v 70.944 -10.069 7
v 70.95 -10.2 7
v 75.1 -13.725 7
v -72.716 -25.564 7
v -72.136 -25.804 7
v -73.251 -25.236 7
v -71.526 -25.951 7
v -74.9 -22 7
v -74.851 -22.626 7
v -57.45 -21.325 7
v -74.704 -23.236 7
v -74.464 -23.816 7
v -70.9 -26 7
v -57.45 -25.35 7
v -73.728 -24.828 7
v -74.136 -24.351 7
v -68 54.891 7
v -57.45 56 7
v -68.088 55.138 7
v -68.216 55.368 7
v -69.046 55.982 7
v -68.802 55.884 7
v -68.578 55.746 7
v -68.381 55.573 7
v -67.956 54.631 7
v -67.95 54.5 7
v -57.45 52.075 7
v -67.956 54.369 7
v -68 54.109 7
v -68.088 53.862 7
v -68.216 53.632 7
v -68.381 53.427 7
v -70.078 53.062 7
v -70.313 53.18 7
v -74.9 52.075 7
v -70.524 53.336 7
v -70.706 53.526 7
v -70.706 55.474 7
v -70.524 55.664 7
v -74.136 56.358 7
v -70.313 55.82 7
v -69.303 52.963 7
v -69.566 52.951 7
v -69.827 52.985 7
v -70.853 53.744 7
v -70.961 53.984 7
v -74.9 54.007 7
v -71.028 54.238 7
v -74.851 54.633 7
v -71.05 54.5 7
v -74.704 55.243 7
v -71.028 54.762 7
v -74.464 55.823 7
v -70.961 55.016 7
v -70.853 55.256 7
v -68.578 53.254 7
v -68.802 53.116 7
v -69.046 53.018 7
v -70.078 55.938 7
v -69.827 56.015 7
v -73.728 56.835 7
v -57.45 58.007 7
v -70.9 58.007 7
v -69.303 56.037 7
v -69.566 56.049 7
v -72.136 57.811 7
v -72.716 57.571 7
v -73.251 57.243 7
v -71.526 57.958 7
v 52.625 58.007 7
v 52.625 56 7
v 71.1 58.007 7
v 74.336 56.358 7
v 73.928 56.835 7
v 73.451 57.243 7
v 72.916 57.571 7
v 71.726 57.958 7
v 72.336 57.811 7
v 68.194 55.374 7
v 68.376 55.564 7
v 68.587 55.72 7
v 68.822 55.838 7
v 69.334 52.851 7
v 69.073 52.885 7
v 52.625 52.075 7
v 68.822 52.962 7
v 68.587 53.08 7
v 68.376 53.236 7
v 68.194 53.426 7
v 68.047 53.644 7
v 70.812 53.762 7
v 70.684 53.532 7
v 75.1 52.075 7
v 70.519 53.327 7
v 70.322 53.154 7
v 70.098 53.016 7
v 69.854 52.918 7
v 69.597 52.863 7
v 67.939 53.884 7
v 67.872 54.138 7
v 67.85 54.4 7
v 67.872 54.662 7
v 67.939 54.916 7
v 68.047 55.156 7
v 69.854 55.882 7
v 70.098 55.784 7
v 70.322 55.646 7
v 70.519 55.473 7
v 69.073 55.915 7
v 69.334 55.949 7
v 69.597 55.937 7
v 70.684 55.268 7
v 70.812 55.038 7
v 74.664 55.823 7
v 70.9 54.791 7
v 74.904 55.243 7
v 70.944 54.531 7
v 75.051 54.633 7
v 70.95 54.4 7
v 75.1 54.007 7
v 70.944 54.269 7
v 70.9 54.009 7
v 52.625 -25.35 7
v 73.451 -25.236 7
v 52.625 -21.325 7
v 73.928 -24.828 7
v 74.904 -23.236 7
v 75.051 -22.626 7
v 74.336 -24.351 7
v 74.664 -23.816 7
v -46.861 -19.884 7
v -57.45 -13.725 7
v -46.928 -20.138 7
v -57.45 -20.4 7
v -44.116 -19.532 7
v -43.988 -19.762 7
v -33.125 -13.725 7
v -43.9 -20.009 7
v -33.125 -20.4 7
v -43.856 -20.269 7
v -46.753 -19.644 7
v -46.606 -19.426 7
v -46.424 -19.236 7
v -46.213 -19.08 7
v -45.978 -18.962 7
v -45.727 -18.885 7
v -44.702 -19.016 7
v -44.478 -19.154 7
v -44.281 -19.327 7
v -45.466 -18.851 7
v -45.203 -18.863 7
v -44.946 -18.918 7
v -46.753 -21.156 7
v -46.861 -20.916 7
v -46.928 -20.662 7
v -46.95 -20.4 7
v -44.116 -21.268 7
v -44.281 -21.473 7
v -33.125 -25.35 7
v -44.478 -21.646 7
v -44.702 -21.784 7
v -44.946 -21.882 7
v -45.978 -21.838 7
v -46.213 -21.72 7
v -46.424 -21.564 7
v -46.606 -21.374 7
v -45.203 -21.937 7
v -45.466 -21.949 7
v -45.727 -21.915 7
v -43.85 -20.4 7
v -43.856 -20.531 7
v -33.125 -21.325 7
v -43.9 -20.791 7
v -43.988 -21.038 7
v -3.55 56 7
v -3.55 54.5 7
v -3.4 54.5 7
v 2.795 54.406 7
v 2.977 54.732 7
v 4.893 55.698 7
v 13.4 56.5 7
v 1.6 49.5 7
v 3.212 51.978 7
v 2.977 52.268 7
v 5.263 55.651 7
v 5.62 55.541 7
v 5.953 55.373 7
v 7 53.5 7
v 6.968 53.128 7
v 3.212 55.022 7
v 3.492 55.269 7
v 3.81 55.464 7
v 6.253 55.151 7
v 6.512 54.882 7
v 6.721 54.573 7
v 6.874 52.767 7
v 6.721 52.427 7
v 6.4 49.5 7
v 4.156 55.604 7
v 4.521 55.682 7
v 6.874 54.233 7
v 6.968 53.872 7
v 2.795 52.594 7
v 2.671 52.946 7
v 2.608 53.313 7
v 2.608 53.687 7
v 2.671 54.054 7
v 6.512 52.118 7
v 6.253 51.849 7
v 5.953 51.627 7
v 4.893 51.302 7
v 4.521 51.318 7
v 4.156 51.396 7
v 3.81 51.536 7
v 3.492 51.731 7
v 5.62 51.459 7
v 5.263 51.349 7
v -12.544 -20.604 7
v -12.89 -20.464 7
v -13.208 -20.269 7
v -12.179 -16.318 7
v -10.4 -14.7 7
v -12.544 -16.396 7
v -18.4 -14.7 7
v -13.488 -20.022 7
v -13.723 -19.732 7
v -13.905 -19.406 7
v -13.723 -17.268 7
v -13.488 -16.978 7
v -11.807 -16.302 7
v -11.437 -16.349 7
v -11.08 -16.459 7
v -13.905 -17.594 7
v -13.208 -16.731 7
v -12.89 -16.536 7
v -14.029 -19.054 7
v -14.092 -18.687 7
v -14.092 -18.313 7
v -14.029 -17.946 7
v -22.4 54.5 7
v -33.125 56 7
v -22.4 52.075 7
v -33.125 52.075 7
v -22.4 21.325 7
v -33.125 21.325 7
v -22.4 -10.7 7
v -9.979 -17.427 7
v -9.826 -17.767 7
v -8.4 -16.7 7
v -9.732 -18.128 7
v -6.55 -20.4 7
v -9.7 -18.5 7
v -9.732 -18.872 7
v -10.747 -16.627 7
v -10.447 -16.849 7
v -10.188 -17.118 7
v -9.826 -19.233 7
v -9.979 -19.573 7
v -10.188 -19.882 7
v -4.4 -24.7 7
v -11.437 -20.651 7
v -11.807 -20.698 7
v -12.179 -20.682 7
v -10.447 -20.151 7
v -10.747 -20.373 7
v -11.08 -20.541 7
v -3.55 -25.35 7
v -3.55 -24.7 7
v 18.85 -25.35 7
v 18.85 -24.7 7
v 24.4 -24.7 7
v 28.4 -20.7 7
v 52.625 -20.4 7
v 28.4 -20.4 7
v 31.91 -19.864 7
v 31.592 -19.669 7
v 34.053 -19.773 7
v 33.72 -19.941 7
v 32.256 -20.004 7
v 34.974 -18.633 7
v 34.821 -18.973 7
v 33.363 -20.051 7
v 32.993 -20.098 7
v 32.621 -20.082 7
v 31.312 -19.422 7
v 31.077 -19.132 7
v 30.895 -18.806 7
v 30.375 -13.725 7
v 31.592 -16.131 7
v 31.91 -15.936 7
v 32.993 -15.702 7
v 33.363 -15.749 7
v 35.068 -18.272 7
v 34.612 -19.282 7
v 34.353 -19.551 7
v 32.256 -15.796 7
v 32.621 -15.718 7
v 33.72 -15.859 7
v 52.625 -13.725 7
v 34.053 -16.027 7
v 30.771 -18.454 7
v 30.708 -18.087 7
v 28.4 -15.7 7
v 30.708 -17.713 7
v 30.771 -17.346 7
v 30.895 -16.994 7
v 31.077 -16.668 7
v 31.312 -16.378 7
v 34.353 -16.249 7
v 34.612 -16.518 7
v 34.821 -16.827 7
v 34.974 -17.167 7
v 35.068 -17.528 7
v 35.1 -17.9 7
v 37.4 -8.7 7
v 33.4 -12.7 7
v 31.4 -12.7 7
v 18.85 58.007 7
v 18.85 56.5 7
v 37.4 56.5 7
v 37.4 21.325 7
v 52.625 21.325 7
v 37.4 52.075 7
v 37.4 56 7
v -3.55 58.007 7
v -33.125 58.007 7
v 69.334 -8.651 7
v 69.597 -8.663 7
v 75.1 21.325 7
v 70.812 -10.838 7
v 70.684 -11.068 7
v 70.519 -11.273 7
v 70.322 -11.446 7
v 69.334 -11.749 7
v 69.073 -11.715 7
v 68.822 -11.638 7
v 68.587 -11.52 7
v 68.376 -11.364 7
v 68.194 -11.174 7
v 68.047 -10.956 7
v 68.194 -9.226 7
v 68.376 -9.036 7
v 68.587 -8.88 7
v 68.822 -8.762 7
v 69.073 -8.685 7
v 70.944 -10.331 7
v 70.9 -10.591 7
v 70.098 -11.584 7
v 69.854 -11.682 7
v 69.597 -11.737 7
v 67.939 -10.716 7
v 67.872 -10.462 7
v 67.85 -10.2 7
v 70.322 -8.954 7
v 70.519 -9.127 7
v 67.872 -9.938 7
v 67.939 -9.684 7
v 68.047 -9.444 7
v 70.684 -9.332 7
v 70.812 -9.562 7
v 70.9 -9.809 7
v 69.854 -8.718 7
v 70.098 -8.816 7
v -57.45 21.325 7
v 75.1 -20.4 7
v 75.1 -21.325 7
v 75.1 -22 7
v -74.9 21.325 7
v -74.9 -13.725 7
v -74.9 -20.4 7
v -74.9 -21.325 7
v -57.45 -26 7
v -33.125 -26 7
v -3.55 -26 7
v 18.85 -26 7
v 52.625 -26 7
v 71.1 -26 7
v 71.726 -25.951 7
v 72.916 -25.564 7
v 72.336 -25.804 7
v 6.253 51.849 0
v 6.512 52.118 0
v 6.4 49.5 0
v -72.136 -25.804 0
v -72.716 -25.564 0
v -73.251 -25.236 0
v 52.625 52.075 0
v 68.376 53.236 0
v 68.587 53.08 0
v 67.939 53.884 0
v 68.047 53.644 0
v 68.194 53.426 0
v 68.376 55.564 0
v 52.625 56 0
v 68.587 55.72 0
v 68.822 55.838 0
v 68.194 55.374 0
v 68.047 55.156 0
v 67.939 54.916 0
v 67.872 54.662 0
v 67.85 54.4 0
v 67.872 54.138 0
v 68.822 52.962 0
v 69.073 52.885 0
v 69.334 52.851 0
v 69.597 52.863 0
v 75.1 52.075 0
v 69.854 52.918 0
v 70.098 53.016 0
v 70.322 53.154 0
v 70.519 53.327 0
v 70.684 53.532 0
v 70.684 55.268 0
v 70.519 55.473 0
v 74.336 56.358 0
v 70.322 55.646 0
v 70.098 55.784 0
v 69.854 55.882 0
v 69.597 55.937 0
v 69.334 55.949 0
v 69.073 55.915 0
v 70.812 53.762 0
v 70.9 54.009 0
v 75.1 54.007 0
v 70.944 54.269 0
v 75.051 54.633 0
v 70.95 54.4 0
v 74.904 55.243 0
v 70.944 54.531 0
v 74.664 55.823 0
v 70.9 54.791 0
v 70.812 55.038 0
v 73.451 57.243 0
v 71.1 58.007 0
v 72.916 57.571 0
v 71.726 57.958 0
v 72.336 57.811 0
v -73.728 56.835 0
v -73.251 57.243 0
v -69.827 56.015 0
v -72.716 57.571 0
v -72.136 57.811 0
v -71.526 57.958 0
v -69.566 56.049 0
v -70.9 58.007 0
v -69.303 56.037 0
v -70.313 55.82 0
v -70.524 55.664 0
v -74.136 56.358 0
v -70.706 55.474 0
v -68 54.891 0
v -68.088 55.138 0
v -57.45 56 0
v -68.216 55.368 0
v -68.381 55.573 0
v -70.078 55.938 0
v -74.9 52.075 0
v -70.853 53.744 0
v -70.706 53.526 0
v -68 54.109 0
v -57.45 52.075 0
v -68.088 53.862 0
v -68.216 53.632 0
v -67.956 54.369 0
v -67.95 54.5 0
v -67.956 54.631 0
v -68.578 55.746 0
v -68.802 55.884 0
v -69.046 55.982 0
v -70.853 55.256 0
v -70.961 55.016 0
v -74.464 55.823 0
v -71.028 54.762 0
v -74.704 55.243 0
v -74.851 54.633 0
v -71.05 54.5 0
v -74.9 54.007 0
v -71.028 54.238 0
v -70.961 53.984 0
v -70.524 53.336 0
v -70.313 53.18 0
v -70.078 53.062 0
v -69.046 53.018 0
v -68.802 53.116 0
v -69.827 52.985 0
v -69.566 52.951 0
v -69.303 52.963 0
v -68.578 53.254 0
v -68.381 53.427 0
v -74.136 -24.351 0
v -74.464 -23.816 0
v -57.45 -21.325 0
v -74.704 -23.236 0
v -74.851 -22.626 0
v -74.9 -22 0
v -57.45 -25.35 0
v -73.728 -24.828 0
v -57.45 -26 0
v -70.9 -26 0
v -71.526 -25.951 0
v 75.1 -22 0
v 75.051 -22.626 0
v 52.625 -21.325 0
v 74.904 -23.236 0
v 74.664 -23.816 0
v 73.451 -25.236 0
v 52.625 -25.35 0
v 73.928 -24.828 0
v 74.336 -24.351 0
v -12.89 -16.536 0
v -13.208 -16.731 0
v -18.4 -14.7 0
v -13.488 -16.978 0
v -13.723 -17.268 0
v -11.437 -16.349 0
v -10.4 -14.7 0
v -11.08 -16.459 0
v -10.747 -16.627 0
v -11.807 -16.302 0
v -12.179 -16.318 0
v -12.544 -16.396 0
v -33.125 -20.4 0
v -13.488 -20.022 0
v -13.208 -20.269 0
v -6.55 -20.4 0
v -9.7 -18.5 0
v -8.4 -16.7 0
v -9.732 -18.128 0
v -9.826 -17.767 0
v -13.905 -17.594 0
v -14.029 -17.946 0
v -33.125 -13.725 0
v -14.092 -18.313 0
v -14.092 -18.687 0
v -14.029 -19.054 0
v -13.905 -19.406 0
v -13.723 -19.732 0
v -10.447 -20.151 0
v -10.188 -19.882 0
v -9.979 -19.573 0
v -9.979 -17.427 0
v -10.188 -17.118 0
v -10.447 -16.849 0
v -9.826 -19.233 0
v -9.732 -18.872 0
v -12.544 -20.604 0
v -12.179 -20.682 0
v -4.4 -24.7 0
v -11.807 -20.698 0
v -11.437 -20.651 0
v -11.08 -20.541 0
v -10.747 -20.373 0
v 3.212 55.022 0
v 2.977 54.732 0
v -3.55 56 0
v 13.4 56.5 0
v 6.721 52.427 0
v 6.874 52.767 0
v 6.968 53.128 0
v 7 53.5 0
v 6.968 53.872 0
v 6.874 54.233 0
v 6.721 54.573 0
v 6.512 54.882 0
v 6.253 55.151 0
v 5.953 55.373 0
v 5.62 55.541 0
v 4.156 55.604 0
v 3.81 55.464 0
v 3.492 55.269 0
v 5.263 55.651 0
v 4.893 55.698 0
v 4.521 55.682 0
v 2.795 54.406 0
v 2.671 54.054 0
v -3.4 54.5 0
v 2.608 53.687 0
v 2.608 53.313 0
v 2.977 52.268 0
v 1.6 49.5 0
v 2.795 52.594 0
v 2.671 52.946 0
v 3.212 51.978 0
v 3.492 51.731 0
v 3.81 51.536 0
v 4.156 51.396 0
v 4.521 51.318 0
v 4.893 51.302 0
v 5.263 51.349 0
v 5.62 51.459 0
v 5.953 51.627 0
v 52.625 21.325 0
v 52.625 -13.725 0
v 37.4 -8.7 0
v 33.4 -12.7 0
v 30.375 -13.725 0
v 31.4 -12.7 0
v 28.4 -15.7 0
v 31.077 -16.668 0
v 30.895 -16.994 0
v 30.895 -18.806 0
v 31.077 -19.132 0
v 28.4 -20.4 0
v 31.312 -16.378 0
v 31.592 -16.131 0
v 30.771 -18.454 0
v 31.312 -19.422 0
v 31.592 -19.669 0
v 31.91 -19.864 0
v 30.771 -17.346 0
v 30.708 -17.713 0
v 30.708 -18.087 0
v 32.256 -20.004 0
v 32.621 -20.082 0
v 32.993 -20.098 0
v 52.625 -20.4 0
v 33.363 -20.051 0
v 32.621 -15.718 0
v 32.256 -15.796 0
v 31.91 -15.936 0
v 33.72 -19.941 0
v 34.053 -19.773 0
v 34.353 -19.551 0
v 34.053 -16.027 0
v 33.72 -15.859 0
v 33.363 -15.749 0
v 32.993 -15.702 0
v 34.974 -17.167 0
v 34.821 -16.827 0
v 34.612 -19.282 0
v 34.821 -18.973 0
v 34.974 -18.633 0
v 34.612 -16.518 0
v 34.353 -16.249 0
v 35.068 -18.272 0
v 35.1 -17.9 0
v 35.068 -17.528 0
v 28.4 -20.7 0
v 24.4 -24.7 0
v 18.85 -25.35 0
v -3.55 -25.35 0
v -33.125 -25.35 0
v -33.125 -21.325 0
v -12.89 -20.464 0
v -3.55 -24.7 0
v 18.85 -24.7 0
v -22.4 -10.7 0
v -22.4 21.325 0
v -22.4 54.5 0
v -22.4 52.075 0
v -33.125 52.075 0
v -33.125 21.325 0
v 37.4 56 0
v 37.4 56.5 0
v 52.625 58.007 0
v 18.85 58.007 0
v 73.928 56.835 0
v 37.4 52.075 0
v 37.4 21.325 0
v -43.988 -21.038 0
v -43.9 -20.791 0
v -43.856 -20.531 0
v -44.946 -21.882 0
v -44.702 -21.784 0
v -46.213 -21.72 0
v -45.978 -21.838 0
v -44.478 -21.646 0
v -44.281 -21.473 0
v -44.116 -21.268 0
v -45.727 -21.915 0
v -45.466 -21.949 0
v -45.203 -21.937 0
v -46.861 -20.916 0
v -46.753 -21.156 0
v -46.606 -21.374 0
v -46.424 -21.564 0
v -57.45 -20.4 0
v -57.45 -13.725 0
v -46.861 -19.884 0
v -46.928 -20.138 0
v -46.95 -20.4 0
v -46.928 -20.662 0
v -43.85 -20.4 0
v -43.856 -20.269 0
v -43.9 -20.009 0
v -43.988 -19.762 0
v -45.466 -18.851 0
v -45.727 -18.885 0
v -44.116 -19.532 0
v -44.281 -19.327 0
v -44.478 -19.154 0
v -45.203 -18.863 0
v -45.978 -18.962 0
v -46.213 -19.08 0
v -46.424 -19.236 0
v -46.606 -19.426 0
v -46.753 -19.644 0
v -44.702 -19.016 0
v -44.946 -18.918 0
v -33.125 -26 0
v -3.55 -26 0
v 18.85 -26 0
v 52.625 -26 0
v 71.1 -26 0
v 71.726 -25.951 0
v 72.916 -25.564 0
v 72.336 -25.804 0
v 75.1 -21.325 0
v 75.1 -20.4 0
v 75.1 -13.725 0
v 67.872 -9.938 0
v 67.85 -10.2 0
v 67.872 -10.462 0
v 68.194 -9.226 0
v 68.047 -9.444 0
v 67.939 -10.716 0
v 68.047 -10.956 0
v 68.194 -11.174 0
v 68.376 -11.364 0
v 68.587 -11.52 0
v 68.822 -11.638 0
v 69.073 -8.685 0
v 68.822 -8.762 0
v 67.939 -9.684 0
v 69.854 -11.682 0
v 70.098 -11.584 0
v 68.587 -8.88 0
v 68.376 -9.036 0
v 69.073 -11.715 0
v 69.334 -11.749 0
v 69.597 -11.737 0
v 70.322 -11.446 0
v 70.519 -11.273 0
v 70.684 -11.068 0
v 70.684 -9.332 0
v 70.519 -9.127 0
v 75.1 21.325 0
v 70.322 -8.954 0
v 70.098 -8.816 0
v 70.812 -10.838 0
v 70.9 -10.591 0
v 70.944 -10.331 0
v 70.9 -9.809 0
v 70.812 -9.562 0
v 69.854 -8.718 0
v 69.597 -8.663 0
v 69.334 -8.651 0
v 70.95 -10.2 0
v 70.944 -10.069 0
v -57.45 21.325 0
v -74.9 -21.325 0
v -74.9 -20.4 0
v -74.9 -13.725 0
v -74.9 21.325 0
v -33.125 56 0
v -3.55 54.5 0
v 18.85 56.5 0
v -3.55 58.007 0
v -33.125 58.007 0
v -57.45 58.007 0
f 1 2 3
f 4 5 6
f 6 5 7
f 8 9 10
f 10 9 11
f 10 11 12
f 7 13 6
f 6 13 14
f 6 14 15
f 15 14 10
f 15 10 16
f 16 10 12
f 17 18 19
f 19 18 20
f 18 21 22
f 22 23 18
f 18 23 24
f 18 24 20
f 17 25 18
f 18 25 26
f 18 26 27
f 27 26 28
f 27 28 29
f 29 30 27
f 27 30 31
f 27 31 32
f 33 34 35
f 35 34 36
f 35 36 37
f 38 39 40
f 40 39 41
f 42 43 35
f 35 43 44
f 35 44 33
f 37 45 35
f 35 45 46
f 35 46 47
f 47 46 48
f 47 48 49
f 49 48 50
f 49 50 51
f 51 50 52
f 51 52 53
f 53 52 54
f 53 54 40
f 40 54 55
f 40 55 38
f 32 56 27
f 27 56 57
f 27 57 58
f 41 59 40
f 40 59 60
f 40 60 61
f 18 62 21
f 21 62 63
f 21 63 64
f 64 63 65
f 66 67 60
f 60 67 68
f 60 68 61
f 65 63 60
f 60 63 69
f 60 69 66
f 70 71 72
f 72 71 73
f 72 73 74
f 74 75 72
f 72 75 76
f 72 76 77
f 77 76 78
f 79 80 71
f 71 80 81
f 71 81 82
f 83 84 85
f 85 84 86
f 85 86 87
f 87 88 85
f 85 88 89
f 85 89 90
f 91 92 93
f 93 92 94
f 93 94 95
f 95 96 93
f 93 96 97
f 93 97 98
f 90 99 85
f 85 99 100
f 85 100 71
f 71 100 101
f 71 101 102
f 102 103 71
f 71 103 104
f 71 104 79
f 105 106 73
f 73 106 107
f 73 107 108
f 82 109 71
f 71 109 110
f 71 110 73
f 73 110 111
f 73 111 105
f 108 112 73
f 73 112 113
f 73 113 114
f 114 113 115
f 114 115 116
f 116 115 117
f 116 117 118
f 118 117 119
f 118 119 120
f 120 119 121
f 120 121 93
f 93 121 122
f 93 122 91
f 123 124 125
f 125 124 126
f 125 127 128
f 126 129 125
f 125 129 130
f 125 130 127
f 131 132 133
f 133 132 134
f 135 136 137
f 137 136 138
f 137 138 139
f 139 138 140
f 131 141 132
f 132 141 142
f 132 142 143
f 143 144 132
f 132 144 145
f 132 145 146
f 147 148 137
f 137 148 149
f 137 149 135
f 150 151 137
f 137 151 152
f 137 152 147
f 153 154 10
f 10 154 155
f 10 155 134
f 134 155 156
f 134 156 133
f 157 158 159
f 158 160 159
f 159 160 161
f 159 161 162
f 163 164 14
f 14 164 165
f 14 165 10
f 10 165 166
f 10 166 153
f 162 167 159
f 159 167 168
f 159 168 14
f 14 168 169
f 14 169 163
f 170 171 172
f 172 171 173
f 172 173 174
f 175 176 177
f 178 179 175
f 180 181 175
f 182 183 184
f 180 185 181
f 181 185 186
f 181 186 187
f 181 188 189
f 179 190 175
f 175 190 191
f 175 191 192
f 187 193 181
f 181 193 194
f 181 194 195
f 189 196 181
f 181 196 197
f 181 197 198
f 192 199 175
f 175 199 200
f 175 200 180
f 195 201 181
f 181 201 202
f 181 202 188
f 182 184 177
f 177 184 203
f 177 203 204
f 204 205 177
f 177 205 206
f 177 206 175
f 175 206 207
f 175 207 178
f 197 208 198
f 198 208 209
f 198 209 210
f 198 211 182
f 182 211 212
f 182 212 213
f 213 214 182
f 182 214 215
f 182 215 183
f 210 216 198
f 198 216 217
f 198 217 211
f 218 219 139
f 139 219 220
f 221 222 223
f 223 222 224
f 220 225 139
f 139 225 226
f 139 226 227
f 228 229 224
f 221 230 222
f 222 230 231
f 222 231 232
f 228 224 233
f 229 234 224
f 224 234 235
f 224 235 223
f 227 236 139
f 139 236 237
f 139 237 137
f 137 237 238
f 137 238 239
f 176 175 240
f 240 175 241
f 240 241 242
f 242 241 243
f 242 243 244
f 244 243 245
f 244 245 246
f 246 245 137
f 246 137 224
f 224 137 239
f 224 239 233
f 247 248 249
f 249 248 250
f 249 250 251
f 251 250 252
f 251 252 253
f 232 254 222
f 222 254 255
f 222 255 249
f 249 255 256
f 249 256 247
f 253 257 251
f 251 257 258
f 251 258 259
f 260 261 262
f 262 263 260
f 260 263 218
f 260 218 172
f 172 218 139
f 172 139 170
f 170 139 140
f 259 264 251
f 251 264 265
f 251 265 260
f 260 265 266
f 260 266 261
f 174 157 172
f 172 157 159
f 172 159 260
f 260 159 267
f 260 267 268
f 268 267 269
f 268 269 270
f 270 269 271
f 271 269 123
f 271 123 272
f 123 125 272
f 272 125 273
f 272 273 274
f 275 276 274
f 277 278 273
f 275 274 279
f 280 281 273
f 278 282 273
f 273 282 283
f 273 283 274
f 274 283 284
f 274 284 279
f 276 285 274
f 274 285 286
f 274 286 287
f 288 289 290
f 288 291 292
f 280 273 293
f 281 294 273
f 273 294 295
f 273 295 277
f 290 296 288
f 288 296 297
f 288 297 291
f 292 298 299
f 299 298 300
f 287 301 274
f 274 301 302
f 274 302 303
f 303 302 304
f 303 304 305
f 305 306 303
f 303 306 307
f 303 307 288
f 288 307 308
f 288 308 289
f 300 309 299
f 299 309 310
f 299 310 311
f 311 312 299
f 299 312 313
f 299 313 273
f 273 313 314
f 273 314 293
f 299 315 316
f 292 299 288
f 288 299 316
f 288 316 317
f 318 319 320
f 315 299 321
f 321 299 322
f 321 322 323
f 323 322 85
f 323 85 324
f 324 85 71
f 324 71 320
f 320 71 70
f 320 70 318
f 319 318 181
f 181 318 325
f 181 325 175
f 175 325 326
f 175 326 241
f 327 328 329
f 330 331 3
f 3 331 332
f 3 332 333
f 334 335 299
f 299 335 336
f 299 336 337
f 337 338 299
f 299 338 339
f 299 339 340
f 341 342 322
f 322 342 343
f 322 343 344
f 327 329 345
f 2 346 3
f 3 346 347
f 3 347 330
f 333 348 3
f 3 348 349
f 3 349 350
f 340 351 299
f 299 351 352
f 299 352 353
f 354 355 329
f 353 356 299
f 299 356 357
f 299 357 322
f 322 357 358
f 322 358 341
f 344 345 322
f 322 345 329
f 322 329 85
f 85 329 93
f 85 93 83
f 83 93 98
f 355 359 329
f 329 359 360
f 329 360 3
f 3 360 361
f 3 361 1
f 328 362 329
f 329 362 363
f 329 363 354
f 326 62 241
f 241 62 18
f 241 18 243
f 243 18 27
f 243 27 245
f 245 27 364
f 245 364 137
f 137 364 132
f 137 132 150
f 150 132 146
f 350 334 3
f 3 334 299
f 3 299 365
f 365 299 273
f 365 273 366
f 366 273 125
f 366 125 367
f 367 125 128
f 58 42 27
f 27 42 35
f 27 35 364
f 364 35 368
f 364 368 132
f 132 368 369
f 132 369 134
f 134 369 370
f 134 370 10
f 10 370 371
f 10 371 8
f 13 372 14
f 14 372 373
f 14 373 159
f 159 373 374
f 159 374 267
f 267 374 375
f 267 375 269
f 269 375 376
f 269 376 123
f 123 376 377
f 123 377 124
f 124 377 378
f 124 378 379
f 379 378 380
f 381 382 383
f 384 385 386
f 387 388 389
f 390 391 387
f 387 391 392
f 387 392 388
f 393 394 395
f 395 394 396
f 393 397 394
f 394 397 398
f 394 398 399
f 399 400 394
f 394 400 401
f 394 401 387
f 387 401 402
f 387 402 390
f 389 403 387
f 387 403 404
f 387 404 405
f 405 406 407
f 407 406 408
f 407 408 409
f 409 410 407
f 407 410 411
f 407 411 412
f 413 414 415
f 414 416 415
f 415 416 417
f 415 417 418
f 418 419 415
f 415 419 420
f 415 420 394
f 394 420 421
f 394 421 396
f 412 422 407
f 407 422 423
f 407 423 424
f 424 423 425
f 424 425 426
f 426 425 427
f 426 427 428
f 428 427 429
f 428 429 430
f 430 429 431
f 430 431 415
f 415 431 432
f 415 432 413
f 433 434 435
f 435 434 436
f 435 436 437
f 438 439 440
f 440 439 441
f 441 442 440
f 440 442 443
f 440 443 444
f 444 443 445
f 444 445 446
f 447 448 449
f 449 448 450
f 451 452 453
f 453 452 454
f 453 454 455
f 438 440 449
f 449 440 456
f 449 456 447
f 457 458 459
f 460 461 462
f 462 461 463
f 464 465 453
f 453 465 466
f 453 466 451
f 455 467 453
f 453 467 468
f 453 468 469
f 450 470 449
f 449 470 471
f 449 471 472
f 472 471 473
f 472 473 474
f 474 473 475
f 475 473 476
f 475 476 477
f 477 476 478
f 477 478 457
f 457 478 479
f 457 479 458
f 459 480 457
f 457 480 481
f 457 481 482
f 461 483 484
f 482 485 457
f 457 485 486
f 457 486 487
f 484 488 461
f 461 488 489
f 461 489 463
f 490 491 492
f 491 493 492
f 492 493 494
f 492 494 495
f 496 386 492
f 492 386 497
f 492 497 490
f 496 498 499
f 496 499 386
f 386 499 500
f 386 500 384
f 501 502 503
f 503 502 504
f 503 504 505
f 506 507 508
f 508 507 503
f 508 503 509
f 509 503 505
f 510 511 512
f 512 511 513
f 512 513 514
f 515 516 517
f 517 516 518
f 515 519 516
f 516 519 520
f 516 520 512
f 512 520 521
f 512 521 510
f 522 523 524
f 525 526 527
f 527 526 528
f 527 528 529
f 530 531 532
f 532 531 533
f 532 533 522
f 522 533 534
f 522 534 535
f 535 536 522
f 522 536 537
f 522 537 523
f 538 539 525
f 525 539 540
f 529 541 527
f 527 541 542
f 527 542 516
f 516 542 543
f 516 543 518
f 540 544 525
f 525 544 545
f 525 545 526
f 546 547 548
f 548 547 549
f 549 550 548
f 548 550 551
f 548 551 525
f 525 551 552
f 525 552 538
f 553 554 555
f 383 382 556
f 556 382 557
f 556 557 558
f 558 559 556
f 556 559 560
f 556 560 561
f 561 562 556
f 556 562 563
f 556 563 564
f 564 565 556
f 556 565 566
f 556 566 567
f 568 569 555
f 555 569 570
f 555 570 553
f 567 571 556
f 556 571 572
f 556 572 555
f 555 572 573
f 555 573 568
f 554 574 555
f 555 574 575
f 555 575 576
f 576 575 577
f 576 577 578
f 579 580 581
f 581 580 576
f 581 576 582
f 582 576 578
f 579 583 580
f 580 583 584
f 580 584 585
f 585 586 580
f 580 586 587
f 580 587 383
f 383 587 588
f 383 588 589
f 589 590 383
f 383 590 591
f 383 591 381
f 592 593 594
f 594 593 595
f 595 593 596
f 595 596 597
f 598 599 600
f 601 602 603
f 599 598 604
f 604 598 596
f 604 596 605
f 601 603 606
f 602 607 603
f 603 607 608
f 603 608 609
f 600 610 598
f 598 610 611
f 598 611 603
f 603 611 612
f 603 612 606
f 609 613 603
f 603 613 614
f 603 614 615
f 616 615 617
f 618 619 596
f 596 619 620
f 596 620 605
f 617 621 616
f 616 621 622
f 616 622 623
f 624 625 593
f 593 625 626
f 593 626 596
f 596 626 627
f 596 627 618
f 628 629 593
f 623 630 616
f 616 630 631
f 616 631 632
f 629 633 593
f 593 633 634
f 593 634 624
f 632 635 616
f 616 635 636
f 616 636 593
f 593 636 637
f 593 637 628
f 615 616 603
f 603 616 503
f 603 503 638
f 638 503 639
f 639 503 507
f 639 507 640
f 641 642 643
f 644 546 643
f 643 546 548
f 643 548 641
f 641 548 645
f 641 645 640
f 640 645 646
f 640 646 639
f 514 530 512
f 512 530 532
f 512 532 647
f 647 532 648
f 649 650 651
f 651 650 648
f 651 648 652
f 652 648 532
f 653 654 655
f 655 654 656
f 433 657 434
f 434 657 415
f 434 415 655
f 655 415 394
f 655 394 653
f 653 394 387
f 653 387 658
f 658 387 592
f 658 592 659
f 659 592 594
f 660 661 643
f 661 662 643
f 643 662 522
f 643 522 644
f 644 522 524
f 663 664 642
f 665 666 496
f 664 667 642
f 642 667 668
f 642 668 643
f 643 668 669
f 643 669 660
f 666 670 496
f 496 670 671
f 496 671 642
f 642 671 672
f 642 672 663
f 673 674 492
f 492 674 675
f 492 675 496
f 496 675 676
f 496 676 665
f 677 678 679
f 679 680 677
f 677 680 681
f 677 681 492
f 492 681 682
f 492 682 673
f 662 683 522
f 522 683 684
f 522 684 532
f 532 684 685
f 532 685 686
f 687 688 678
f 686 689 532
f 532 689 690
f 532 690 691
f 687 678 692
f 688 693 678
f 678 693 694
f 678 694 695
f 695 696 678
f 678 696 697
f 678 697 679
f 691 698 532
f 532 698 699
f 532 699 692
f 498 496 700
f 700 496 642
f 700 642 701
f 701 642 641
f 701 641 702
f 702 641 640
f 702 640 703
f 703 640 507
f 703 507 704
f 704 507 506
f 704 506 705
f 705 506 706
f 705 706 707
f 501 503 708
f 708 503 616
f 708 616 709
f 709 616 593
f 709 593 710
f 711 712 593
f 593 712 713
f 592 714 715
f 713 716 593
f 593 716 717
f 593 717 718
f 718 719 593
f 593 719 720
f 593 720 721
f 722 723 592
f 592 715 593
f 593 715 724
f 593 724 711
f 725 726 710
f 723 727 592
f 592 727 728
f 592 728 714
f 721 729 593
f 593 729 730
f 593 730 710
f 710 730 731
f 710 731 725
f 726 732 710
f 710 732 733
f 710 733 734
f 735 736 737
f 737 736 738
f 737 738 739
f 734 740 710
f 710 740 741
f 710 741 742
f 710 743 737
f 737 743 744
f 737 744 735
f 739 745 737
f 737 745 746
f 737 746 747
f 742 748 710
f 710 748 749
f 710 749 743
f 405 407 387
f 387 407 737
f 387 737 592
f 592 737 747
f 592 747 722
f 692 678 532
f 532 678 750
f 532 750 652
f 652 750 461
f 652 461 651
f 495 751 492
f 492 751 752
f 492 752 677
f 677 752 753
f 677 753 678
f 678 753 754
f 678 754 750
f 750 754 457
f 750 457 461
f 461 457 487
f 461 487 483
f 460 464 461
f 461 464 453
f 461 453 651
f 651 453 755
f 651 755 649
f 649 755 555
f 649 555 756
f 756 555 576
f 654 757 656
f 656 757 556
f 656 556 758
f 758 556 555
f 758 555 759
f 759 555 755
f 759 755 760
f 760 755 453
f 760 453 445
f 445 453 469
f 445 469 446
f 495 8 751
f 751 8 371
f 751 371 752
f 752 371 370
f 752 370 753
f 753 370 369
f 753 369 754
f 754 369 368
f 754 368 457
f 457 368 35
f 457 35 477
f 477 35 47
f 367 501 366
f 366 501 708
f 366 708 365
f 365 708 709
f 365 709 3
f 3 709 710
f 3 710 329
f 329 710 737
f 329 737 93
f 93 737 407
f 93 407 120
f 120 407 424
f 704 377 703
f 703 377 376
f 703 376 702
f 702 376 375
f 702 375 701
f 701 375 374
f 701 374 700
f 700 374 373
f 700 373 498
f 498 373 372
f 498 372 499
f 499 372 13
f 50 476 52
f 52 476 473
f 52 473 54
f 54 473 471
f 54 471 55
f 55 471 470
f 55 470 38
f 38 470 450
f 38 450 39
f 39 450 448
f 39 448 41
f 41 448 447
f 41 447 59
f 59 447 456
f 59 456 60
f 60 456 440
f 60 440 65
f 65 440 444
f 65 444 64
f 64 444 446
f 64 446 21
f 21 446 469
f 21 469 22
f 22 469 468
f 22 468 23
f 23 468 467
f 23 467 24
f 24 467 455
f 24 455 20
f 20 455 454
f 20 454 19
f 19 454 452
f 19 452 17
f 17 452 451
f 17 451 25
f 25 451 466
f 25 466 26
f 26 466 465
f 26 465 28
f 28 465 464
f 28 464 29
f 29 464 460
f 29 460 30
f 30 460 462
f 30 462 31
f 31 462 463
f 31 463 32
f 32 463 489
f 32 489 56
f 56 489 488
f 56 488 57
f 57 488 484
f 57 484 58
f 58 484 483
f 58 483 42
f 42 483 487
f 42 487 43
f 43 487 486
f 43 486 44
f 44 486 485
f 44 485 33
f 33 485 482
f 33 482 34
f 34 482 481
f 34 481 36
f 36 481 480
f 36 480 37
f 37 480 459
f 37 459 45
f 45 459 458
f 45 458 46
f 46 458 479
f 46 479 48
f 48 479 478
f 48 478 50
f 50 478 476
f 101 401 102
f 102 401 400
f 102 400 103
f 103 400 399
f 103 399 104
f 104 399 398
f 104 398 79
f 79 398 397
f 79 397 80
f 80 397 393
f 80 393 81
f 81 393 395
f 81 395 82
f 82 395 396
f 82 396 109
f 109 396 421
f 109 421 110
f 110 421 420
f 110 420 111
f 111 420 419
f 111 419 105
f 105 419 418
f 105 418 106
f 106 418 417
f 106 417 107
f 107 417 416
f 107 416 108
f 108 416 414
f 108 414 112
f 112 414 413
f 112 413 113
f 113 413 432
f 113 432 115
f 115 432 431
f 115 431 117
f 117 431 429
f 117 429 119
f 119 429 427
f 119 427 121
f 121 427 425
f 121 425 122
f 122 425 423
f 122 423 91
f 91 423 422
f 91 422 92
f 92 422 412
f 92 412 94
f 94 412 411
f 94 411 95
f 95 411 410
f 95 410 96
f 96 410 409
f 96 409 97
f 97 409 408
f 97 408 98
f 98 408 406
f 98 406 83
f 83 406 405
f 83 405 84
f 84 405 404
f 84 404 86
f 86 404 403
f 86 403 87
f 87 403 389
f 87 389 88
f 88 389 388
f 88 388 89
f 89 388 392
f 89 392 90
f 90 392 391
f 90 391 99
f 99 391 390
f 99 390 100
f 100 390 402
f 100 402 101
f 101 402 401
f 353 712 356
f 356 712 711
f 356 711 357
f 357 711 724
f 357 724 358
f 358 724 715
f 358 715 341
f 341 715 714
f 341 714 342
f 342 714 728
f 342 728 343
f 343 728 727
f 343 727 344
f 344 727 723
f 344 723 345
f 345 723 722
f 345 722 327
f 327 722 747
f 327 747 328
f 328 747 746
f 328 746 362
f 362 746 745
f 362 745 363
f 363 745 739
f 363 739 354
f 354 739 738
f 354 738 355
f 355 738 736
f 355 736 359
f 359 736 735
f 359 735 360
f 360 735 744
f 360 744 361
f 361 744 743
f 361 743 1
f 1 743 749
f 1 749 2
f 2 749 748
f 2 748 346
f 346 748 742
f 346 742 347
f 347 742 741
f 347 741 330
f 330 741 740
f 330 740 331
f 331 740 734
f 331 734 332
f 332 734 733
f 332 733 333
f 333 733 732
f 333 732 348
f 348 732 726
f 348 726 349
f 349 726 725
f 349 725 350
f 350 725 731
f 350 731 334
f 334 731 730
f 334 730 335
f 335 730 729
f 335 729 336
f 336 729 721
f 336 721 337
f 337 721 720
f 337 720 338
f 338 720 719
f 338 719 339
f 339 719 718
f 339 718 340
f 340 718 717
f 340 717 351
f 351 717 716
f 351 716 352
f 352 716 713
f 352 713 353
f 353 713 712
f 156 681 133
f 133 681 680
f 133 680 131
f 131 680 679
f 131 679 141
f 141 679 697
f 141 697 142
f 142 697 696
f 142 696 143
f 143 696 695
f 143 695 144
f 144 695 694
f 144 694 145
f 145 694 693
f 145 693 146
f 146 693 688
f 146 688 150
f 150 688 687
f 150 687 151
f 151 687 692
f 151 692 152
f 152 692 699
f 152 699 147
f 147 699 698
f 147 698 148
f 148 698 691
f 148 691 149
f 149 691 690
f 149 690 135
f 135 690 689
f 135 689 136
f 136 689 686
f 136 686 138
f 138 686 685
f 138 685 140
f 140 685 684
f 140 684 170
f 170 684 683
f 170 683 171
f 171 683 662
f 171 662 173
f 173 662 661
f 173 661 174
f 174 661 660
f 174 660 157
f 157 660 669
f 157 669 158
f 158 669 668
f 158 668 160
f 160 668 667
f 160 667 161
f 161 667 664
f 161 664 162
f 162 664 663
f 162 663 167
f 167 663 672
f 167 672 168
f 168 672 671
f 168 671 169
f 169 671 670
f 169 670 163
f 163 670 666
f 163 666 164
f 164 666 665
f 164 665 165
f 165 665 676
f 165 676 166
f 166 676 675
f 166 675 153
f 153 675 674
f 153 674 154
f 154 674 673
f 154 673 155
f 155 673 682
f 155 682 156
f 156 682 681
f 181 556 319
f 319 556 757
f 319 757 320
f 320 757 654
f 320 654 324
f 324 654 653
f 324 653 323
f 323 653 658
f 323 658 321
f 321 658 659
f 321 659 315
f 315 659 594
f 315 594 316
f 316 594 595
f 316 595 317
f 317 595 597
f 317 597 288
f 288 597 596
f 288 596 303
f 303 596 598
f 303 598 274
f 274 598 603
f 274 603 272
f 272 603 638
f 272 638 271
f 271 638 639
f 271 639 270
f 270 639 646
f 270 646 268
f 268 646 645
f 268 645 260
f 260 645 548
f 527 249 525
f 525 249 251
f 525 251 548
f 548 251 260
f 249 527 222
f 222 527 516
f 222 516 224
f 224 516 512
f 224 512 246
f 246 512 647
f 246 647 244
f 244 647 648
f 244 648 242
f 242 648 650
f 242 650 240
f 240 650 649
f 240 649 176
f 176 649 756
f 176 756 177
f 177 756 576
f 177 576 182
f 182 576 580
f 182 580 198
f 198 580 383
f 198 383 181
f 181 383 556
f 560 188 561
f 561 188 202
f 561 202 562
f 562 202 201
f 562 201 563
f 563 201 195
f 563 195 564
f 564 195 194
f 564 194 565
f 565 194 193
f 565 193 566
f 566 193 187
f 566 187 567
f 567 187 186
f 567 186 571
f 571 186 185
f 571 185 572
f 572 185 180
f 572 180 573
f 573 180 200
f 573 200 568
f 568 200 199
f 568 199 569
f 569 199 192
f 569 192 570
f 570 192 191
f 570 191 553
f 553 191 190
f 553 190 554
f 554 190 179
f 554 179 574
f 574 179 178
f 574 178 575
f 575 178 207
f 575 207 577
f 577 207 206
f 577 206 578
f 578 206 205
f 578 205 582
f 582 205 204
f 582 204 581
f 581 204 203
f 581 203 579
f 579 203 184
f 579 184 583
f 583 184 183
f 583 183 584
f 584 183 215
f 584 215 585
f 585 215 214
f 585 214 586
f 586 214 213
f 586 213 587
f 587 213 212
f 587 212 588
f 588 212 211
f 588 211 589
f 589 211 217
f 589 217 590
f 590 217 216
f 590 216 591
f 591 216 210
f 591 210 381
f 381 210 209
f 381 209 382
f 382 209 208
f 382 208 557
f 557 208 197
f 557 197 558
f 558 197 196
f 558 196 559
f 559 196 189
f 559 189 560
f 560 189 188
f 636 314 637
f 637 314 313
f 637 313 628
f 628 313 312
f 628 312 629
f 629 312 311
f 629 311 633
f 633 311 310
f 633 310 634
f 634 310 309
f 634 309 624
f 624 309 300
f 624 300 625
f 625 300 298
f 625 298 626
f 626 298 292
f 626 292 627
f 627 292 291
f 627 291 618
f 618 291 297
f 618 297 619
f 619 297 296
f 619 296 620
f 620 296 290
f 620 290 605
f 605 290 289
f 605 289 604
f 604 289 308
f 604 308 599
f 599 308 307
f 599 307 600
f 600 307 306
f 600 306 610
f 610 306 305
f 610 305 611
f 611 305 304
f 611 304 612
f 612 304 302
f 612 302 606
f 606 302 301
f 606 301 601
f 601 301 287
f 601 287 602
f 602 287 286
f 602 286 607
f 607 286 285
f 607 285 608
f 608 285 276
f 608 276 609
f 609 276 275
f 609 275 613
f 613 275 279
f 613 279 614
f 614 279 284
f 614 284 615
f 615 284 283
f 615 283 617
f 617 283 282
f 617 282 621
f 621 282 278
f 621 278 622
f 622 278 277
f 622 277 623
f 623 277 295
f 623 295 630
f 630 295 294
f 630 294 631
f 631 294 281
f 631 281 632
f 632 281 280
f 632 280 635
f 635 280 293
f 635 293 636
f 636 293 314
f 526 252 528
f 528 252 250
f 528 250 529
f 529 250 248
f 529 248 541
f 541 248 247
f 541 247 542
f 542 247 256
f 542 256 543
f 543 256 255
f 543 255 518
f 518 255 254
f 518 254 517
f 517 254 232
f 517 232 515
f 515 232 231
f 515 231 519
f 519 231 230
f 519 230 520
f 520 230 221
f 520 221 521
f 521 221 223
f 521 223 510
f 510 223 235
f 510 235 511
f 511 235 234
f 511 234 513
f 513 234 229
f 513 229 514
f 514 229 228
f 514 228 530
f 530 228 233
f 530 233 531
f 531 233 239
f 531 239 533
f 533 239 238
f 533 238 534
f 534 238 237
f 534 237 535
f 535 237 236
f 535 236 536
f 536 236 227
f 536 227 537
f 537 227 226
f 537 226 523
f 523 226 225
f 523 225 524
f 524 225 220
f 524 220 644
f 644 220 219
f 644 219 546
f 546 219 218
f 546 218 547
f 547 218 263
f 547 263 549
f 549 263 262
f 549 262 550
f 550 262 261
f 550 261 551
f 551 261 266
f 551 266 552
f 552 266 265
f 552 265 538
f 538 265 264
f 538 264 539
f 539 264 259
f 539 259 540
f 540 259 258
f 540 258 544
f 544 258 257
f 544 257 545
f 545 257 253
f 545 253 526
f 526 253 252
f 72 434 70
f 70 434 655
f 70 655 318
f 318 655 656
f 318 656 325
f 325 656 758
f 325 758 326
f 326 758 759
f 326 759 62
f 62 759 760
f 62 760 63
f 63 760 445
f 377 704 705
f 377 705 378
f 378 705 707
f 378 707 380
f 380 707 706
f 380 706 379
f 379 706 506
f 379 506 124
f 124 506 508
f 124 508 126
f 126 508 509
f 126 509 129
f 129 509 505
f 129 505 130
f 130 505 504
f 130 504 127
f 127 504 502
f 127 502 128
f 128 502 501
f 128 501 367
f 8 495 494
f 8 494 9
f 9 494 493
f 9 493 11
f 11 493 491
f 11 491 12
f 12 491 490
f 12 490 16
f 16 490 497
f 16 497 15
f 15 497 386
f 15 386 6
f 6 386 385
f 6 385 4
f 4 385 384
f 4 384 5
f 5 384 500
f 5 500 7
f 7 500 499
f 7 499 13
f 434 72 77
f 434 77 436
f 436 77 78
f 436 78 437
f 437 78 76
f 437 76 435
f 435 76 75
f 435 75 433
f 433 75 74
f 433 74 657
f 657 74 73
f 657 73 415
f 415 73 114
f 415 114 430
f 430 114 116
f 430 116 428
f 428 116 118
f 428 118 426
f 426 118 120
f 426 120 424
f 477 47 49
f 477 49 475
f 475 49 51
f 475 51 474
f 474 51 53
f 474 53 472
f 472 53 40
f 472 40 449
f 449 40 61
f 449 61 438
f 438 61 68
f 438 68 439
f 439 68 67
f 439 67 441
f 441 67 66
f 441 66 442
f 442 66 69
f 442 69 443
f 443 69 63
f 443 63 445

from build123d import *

# Parameters (mm, degrees)
ESQUISSE2_W                  = 149.999998509
ESQUISSE2_H                  = 85.999999195
ESQUISSE2_R                  = 1.549998298
ESQUISSE2_R_2                = 1.550002024
ESQUISSE2_R_3                = 1.550000161
BOSS_EXTRU_1_DEPTH           = 7
ENL_V_MAT_EXTRU_1_DEPTH      = 98.270805324
ENL_V_MAT_EXTRU_1_DEPTH_BACK = 98.270805324
ESQUISSE1_R                  = 2.199999988
ESQUISSE1_R_2                = 2.199999813
ESQUISSE3_W                  = 166.207428958
ESQUISSE3_H                  = 65.702519239
ENL_V_MAT_EXTRU_2_DEPTH      = 97.379507271
CONG_1_R                     = 4


with BuildPart() as part:
    # Esquisse2 → Boss.-Extru.1 (new body)
    with BuildSketch(Plane.XY):
        with Locations((0.099997967, 16.999999062)):
            Rectangle(ESQUISSE2_W, ESQUISSE2_H)
        with Locations((-69.500004873, 54.500000551)):
            Circle(ESQUISSE2_R, mode=Mode.SUBTRACT)
        with Locations((69.399992004, 54.399998859)):
            Circle(ESQUISSE2_R_2, mode=Mode.SUBTRACT)
        with Locations((69.399993867, -10.199999437)):
            Circle(ESQUISSE2_R_3, mode=Mode.SUBTRACT)
        with Locations((-45.399997383, -20.400000736)):
            Circle(ESQUISSE2_R_3, mode=Mode.SUBTRACT)
    extrude(amount=BOSS_EXTRU_1_DEPTH)

    # Esquisse1 → Enlèv. mat.-Extru.1 (cut, two sides: drawn at the far end of the back side and taken through both)
    with BuildSketch(Plane(origin=(-8.3999997, 23.400000297, 0), x_dir=(0, -1, 0), z_dir=(0, 0, 1)).offset(-ENL_V_MAT_EXTRU_1_DEPTH_BACK)):
        with Locations(Location((-30.09999916, 13.199999928, 0), (0, 0, 90))):
            Circle(ESQUISSE1_R)
        with Locations(Location((41.29999876, 41.29999876, 0), (0, 0, 90))):
            Circle(ESQUISSE1_R)
        with Locations(Location((41.899997916, -3.499999817, 0), (0, 0, 90))):
            Circle(ESQUISSE1_R_2)
        Polygon((36.100000143, 41.799999774), (32.099999487, 45.800000429), (-33.099997789, 45.800000429), (-33.099997789, 21.799998358), (-26.100000367, 14.800000004), (-26.100000367, 9.999999776), (-31.100001053, 4.999999755), (-31.100001053, -14.000000432), (34.099999815, -14.000000432), (38.099996746, -9.999999776), (38.099996746, -2.000000095), (40.099997073, 0), (48.099998385, 4.00000019), (48.099998385, 32.800000161), (44.099997729, 36.800000817), (39.099998772, 36.800000817), (36.100000143, 39.799999446), align=None)
    extrude(amount=ENL_V_MAT_EXTRU_1_DEPTH + ENL_V_MAT_EXTRU_1_DEPTH_BACK, mode=Mode.SUBTRACT)

    # Esquisse3 → Enlèv. mat.-Extru.2 (cut, through all)
    with BuildSketch(Plane.XY):
        with Locations((8.203713192, 90.85813109)):
            Rectangle(ESQUISSE3_W, ESQUISSE3_H)
    extrude(amount=ENL_V_MAT_EXTRU_2_DEPTH, mode=Mode.SUBTRACT)

    # Congé1
    cong_1_edges = [part.edges().sort_by_distance(p)[0] for p in [
        (75.099997222, 58.00687147, 3.5),
        (-74.900001287, 58.00687147, 3.5),
        (75.099997222, -26.000000536, 3.5),
        (-74.900001287, -26.000000536, 3.5),
    ]]
    fillet(cong_1_edges, radius=CONG_1_R)


solid = part.part
